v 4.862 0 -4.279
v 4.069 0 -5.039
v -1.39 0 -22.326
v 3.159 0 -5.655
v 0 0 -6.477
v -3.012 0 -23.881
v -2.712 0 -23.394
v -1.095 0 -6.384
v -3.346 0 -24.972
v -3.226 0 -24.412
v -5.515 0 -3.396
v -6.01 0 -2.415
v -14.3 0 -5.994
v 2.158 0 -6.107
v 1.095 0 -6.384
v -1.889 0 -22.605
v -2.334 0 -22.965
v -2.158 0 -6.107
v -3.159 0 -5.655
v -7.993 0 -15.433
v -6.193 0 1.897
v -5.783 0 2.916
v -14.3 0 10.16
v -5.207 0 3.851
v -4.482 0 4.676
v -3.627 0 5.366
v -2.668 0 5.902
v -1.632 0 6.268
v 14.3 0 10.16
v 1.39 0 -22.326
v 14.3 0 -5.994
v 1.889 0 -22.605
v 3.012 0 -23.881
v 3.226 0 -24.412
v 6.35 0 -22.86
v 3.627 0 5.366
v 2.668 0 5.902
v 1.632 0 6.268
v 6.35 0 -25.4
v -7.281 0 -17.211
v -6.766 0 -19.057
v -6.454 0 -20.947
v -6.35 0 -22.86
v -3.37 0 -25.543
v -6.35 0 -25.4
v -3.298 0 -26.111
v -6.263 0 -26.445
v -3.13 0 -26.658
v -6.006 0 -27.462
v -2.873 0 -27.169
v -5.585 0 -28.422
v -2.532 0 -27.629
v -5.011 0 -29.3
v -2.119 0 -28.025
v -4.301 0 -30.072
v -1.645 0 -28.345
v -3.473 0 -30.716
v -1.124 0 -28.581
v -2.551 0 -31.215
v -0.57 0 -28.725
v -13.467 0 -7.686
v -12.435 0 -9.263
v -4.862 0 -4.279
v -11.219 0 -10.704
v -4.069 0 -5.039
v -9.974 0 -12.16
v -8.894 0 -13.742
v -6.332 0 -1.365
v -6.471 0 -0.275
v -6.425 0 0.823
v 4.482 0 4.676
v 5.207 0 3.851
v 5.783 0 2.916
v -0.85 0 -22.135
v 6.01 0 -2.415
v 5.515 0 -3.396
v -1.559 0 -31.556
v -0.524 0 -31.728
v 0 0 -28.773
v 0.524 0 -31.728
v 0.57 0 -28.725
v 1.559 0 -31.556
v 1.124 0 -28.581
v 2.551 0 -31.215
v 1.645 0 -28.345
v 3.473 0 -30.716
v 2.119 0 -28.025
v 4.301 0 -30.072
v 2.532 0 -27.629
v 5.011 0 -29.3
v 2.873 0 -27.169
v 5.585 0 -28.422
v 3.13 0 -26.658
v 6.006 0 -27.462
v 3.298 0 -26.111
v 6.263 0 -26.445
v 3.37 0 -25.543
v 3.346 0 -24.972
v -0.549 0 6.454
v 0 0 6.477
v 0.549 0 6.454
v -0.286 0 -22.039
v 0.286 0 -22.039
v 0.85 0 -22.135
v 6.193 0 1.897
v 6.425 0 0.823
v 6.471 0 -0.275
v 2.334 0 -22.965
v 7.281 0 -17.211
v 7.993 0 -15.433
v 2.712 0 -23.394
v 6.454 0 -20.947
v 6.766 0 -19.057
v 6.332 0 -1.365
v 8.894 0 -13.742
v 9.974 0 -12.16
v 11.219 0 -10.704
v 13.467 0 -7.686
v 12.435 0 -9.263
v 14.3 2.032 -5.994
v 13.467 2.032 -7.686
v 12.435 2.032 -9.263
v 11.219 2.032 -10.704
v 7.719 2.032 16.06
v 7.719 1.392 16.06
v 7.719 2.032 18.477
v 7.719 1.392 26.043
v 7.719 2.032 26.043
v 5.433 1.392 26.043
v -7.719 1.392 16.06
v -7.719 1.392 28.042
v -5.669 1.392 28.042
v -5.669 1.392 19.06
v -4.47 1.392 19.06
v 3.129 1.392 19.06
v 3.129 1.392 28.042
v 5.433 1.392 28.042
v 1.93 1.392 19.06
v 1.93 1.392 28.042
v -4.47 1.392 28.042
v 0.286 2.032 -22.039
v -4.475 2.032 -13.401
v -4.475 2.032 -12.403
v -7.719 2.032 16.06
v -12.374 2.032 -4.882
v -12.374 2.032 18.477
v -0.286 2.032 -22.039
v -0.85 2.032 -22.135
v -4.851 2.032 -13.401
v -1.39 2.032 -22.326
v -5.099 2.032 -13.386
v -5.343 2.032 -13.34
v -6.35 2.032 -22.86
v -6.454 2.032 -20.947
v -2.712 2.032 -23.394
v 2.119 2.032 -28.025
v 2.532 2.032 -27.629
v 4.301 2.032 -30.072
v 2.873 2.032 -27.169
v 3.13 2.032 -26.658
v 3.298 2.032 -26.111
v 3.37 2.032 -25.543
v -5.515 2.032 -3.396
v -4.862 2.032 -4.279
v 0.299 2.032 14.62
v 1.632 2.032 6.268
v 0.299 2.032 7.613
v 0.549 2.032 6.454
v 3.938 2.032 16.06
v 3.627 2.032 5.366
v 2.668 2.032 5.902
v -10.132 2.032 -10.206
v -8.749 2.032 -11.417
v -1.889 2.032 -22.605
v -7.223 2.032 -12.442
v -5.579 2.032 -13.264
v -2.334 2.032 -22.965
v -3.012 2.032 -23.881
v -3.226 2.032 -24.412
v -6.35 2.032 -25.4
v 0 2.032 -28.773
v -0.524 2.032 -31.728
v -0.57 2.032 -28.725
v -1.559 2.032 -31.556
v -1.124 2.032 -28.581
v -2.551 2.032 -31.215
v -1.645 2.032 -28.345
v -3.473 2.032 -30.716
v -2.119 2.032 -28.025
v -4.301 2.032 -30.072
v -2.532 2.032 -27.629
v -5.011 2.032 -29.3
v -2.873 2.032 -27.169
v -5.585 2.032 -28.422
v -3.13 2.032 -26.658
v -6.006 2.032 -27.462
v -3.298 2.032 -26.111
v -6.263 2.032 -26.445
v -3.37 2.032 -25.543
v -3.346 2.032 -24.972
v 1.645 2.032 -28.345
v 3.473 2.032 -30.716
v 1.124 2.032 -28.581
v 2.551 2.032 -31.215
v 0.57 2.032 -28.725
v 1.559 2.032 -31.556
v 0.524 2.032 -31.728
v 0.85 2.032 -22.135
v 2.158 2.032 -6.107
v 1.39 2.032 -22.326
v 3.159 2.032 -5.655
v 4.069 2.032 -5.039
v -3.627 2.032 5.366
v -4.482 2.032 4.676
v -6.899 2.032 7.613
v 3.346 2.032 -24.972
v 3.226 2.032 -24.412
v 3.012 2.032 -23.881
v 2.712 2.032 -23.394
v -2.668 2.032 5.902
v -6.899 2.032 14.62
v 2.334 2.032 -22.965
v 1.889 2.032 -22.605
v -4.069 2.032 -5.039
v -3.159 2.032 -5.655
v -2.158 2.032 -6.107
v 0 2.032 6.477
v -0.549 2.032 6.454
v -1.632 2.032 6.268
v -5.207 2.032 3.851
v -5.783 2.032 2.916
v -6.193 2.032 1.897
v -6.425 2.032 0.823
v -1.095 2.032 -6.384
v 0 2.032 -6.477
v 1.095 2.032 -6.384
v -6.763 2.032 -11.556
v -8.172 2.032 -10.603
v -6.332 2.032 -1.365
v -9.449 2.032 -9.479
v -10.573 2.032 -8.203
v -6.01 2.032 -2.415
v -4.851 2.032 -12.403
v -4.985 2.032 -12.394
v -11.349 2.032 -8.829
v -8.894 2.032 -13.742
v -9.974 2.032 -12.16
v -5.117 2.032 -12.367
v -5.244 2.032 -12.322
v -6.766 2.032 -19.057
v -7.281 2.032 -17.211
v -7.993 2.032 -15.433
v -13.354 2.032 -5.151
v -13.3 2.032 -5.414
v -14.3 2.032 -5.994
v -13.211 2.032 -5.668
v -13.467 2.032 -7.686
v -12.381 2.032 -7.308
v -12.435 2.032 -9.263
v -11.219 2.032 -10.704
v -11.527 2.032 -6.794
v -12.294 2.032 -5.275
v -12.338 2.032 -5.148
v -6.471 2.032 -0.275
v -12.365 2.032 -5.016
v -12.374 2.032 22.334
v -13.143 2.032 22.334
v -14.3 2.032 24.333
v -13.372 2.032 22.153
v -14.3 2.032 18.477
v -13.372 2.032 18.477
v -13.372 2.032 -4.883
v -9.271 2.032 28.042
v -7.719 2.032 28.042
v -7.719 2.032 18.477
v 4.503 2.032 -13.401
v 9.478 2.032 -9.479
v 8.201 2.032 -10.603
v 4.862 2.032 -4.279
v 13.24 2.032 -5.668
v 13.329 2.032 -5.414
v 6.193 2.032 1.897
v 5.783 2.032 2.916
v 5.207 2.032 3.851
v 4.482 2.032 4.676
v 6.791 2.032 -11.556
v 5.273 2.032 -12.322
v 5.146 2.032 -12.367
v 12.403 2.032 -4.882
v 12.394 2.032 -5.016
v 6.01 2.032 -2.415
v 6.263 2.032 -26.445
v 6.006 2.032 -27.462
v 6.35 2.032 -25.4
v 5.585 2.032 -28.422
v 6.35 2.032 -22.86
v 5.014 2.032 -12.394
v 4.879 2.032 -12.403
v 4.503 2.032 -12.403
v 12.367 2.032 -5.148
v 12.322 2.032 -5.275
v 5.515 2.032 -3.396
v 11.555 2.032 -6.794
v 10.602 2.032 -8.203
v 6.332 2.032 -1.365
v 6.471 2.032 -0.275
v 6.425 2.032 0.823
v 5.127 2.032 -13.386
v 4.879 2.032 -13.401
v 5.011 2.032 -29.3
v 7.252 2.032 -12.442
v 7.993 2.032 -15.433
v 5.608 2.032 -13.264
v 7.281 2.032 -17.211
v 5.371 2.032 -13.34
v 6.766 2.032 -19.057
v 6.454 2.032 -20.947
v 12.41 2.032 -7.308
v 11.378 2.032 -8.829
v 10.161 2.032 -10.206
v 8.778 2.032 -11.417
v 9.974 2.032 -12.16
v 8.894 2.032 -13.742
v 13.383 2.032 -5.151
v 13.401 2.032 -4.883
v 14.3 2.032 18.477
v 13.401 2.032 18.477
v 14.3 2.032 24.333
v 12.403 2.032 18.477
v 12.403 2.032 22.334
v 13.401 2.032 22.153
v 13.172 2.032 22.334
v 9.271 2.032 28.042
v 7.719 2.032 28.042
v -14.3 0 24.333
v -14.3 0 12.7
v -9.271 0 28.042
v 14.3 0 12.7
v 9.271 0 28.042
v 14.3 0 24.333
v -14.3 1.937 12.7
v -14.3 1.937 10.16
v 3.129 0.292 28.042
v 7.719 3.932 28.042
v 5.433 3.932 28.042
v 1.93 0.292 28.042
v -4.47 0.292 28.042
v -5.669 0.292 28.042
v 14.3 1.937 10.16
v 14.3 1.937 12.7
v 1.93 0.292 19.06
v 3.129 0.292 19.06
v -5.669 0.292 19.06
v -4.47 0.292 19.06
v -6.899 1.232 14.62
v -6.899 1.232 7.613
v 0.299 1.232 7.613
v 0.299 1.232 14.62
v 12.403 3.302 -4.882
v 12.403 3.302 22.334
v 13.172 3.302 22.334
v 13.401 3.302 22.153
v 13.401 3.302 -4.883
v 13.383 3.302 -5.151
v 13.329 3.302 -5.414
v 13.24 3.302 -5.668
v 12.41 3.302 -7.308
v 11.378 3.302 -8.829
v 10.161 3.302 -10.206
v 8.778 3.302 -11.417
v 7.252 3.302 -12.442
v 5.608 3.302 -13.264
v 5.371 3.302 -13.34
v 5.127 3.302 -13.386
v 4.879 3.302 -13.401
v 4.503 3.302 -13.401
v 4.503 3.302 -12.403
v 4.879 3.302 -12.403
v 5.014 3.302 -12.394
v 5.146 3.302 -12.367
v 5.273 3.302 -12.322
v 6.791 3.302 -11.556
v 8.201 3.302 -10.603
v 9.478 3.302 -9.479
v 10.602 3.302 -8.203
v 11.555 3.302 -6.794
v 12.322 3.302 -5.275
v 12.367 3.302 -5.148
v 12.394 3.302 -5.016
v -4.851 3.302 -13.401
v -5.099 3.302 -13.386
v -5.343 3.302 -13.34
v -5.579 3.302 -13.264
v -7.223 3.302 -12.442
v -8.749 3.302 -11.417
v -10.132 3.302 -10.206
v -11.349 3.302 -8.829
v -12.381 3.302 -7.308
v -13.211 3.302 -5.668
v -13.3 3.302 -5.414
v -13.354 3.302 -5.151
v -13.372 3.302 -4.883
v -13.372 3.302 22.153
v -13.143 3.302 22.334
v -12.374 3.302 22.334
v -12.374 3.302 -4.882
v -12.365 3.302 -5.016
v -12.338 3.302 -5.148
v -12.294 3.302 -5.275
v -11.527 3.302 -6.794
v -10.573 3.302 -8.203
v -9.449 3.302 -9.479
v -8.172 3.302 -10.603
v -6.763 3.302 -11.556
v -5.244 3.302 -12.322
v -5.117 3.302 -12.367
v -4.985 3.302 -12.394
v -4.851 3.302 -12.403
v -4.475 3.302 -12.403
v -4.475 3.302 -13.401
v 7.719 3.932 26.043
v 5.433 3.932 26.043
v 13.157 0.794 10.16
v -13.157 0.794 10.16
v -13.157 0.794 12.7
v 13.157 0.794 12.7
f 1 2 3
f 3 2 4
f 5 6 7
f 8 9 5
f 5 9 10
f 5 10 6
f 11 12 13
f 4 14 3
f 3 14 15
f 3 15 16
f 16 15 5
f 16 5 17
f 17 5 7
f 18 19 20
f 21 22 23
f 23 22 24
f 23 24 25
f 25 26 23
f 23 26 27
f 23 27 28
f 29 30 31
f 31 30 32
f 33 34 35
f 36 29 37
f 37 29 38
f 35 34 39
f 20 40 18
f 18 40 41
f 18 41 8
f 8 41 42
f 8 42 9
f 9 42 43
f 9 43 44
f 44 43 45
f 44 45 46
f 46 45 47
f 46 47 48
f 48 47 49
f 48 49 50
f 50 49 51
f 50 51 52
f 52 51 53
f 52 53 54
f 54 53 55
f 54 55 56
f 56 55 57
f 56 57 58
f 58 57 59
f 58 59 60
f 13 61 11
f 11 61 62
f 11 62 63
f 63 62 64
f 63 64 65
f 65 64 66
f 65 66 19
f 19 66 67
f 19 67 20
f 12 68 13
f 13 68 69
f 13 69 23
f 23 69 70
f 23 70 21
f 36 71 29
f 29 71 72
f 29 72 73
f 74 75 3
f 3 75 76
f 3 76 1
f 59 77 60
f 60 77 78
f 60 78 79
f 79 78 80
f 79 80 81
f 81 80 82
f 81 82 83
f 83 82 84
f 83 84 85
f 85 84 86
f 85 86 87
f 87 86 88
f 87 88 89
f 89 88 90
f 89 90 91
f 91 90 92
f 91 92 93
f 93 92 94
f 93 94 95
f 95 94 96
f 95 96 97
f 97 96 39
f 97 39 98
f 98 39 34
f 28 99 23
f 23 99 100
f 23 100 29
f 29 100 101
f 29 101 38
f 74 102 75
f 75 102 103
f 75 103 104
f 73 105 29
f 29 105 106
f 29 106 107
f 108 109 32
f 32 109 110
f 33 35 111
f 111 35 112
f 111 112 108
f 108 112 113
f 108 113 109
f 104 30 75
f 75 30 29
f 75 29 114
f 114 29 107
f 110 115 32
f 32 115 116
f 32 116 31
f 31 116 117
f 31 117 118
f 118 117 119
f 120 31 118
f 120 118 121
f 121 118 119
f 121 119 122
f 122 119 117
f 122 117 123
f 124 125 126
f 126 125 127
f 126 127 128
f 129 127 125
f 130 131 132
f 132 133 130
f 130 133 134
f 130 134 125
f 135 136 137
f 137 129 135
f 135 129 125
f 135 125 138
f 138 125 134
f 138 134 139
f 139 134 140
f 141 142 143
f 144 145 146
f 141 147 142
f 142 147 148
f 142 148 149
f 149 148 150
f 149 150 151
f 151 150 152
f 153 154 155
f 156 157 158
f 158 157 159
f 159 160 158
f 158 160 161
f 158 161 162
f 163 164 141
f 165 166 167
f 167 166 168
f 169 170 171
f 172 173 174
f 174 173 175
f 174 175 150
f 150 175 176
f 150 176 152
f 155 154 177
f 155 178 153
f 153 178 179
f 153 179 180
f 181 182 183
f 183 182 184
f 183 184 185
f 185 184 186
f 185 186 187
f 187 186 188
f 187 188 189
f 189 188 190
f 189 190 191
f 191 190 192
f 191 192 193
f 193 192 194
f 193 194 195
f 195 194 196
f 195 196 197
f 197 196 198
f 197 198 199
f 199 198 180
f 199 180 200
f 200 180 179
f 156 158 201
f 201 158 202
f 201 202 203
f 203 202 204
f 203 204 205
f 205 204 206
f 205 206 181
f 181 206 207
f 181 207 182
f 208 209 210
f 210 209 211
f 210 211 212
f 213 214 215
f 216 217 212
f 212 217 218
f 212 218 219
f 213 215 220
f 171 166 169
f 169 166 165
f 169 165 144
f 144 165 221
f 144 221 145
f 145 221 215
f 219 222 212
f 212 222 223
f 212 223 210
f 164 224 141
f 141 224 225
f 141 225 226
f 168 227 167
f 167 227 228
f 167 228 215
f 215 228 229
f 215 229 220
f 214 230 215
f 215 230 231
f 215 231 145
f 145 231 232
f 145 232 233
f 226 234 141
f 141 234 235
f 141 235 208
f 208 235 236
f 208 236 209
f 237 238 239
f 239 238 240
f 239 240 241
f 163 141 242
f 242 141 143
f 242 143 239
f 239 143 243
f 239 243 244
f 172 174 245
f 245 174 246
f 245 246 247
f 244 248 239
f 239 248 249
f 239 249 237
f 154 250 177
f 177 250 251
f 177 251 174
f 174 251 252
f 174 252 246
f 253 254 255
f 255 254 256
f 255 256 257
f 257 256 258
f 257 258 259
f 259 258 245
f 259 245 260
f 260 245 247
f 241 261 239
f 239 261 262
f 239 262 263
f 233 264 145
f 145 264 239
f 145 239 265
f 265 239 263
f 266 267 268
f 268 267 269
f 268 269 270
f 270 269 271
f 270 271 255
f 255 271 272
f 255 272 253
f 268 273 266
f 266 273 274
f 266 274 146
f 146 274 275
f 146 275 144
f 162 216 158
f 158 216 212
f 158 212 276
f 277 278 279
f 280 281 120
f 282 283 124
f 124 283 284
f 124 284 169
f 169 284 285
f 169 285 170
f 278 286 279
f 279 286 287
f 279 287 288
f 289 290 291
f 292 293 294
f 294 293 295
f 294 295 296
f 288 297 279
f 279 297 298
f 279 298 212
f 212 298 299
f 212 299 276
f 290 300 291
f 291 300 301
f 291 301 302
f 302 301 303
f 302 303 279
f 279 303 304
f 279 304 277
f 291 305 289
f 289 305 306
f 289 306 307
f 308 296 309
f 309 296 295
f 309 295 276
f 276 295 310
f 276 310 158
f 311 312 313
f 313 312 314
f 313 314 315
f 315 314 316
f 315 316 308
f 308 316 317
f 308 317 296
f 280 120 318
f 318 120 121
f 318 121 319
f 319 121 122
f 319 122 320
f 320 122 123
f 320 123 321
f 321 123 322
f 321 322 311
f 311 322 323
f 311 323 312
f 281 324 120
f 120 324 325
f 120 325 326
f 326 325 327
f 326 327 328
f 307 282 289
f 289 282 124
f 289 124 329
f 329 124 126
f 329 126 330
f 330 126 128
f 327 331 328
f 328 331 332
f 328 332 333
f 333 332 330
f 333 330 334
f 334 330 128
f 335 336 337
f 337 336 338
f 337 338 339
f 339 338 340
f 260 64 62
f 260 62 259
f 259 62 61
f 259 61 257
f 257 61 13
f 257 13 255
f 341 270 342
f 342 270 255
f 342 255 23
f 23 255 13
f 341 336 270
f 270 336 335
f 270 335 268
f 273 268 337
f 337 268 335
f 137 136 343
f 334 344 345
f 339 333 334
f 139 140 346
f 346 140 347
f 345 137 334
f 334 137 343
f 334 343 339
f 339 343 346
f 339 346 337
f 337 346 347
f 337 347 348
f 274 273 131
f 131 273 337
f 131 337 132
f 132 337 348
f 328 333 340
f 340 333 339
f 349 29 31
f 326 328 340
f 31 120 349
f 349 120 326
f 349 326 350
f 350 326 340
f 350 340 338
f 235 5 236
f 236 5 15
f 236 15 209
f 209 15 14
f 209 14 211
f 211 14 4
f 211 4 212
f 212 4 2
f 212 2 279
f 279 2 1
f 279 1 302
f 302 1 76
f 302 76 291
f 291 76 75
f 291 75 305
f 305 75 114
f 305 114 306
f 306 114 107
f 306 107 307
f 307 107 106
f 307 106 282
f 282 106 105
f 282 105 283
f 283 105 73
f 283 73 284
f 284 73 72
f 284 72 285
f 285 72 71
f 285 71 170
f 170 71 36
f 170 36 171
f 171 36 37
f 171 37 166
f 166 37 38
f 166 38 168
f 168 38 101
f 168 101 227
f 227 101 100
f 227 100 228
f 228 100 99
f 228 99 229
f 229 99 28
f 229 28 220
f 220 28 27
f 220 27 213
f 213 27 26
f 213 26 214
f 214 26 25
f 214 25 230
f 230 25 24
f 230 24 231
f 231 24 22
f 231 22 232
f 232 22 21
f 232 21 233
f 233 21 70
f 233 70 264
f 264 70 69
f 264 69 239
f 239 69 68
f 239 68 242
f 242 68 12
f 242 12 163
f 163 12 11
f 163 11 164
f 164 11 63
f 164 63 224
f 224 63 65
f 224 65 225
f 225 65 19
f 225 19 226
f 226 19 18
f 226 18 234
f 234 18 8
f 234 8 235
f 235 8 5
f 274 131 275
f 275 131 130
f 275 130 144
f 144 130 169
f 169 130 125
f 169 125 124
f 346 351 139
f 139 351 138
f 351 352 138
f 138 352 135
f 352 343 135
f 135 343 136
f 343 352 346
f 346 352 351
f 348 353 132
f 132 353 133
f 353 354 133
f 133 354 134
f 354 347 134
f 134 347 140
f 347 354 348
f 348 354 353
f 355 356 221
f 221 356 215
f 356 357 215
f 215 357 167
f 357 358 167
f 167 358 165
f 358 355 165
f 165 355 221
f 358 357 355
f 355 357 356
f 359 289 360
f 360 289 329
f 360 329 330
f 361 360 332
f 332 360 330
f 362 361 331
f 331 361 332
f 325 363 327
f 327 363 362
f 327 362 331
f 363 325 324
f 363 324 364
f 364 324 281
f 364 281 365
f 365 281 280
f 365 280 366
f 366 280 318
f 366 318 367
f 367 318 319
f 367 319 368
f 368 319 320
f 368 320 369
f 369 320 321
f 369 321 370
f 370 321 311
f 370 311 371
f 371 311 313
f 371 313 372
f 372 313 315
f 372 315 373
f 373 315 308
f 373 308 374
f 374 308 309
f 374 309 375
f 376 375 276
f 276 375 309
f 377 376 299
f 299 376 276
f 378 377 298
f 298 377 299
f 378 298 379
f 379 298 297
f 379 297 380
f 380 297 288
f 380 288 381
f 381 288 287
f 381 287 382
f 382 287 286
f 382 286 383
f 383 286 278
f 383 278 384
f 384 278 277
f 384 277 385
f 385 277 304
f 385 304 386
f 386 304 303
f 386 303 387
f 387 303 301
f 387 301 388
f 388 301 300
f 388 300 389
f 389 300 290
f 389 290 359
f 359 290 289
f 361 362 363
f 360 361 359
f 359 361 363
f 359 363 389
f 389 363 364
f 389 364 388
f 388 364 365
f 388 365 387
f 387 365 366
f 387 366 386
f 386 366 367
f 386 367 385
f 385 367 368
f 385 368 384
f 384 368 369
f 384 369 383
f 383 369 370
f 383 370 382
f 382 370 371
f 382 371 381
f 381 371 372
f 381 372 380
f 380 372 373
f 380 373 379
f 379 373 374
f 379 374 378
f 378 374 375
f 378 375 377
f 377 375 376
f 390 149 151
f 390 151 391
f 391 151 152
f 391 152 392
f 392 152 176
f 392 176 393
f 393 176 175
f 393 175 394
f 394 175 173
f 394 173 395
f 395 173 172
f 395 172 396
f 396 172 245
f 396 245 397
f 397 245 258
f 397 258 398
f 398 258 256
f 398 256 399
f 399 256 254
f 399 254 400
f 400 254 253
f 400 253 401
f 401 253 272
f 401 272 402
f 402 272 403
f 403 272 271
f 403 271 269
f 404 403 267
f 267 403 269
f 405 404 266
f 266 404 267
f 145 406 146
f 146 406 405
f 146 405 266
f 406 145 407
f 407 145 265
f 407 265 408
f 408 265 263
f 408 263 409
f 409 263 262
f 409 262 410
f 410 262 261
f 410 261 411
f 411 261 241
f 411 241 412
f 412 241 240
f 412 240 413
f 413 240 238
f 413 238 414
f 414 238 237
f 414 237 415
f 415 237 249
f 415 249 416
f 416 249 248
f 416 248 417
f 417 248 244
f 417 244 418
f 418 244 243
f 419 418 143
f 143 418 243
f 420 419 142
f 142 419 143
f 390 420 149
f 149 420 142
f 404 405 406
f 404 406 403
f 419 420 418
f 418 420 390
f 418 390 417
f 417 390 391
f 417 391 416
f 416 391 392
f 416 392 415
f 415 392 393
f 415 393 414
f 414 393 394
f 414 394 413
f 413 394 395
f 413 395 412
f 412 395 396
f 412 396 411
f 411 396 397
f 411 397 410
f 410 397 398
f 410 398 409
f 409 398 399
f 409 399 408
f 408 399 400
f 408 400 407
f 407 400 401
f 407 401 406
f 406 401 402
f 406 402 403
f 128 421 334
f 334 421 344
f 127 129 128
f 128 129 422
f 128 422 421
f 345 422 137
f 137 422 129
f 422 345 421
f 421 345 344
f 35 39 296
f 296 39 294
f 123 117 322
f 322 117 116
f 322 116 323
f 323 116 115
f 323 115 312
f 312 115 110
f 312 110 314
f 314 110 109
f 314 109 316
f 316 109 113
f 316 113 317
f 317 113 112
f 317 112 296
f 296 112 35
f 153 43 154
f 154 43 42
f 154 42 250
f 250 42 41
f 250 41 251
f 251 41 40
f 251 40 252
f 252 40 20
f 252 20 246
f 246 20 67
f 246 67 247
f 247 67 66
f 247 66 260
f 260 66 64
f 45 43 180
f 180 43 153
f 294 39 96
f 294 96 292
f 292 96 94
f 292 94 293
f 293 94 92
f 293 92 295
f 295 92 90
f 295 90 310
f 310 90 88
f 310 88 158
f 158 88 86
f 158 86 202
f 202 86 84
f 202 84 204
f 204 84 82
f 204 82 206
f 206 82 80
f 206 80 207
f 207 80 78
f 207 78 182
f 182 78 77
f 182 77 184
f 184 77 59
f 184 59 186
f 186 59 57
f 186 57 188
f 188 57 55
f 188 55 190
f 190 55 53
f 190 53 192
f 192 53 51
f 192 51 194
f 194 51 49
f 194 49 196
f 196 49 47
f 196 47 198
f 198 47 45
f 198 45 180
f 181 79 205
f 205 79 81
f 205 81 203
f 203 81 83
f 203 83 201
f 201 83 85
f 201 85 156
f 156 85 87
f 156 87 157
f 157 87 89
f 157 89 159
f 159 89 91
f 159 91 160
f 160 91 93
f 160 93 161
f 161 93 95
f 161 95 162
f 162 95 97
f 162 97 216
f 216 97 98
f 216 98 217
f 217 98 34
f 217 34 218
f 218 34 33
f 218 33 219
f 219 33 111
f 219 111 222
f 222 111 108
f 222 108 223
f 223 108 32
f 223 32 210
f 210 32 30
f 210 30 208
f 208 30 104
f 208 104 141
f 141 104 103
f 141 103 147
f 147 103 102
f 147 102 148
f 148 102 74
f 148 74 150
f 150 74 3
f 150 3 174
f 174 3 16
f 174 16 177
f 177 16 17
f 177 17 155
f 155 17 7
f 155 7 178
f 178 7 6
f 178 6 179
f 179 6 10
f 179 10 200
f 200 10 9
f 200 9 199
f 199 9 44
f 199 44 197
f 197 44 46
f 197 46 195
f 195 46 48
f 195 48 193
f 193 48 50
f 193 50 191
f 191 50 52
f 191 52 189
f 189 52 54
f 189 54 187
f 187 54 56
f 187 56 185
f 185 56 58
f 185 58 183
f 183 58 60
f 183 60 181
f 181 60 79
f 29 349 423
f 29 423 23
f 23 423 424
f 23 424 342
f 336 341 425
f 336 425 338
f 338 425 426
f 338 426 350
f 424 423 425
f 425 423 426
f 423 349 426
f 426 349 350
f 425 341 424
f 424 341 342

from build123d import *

# Parameters (mm, degrees)
SKETCH1_R               = 6.477
BOSS_EXTRUDE1_DEPTH     = 2.032
CUT_EXTRUDE1_DEPTH      = 0.64008
SKETCH3_W               = 1.19888
SKETCH3_H               = 8.98144
CUT_EXTRUDE2_DEPTH      = 1.09982
SKETCH4_W               = 7.19836
SKETCH4_H               = 7.00786
CUT_EXTRUDE3_DEPTH      = 0.8001
BOSS_EXTRUDE2_DEPTH     = 1.27
SKETCH6_W               = 2.286
SKETCH6_H               = 1.99898
BOSS_EXTRUDE3_DEPTH     = 2.54
SKETCH7_R               = 3.3734375
BOSS_EXTRUDE4_DEPTH     = 2.032
SKETCH8_W               = 2.54
SKETCH8_H               = 0.79375
CUT_EXTRUDE4_DEPTH      = 1
CUT_EXTRUDE4_DEPTH_BACK = 29.6004
CHAMFER1_SIZE           = 1.143
CHAMFER2_SIZE           = 1.143


with BuildPart() as part:
    # Sketch1 → Boss-Extrude1 (new body)
    with BuildSketch(Plane(origin=(0, 0, 0), x_dir=(1, 0, 0), z_dir=(0, 1, 0))):
        with BuildLine():
            Line((-14.3002, 5.9944), (-14.3002, -24.3332))
            Line((-14.3002, -24.3332), (-9.271, -28.0416))
            Line((-9.271, -28.0416), (9.271, -28.0416))
            Line((9.271, -28.0416), (14.3002, -24.3332))
            Line((14.3002, -24.3332), (14.3002, 5.9944))
            ThreePointArc((14.3002, 5.9944), (0, 15.505758653), (-14.3002, 5.9944))
        make_face()
        Circle(SKETCH1_R, mode=Mode.SUBTRACT)
    extrude(amount=BOSS_EXTRUDE1_DEPTH)

    # Sketch2 → Cut-Extrude1 (cut)
    with BuildSketch(Plane(origin=(0, 2.032, 0), x_dir=(1, 0, 0), z_dir=(0, 1, 0))):
        Polygon((0, -28.0416), (-7.71906, -28.0416), (-7.71906, -16.06042), (7.71906, -16.06042), (7.71906, -28.0416), align=None)
    extrude(amount=-CUT_EXTRUDE1_DEPTH, mode=Mode.SUBTRACT)

    # Sketch3 → Cut-Extrude2 (cut)
    with BuildSketch(Plane(origin=(0, 1.39192, 0), x_dir=(1, 0, 0), z_dir=(0, 1, 0))):
        with Locations((-5.06984, -23.55088)):
            Rectangle(SKETCH3_W, SKETCH3_H)
        with Locations((2.52984, -23.55088)):
            Rectangle(SKETCH3_W, SKETCH3_H)
    extrude(amount=-CUT_EXTRUDE2_DEPTH, mode=Mode.SUBTRACT)

    # Sketch4 → Cut-Extrude3 (cut)
    with BuildSketch(Plane(origin=(0, 2.032, 0), x_dir=(1, 0, 0), z_dir=(0, 1, 0))):
        with Locations((-3.299968, -11.116564)):
            Rectangle(SKETCH4_W, SKETCH4_H)
    extrude(amount=-CUT_EXTRUDE3_DEPTH, mode=Mode.SUBTRACT)

    # Sketch5 → Boss-Extrude2 (add)
    with BuildSketch(Plane(origin=(0, 2.032, 0), x_dir=(1, 0, 0), z_dir=(0, 1, 0))):
        with BuildLine():
            Line((12.40282, -22.33422), (13.171678, -22.33422))
            Line((13.171678, -22.33422), (13.40104, -22.152864))
            Line((13.40104, -22.152864), (13.40104, 4.882896))
            ThreePointArc((13.40104, 4.882896), (13.360125716, 5.283490726), (13.23975, 5.667756))
            ThreePointArc((13.23975, 5.667756), (10.160746855, 10.20631074), (5.608066, 13.264388))
            ThreePointArc((5.608066, 13.264388), (5.250053957, 13.366581837), (4.87934, 13.40104))
            Line((4.87934, 13.40104), (4.50342, 13.40104))
            Line((4.50342, 13.40104), (4.50342, 12.40282))
            Line((4.50342, 12.40282), (4.87934, 12.40282))
            ThreePointArc((4.87934, 12.40282), (5.080028543, 12.382451063), (5.272532, 12.322175))
            ThreePointArc((5.272532, 12.322175), (9.477779109, 9.479294357), (12.322175, 5.275072))
            ThreePointArc((12.322175, 5.275072), (12.382451063, 5.082568543), (12.40282, 4.88188))
            Line((12.40282, 4.88188), (12.40282, -22.33422))
        make_face()
        with BuildLine():
            Line((-4.850750436, 13.40104), (-4.474830436, 13.40104))
            Line((-4.474830436, 13.40104), (-4.474830436, 12.40282))
            Line((-4.474830436, 12.40282), (-4.850750436, 12.40282))
            ThreePointArc((-4.850750436, 12.40282), (-5.051438979, 12.382451063), (-5.243942436, 12.322175))
            ThreePointArc((-5.243942436, 12.322175), (-9.449189546, 9.479294357), (-12.293585436, 5.275072))
            ThreePointArc((-12.293585436, 5.275072), (-12.353861499, 5.082568543), (-12.374230436, 4.88188))
            Line((-12.374230436, 4.88188), (-12.374230436, -22.33422))
            Line((-12.374230436, -22.33422), (-13.143088436, -22.33422))
            Line((-13.143088436, -22.33422), (-13.372450436, -22.152864))
            Line((-13.372450436, -22.152864), (-13.372450436, 4.882896))
            ThreePointArc((-13.372450436, 4.882896), (-13.331536152, 5.283490726), (-13.211160436, 5.667756))
            ThreePointArc((-13.211160436, 5.667756), (-10.132157291, 10.20631074), (-5.579476436, 13.264388))
            ThreePointArc((-5.579476436, 13.264388), (-5.221464393, 13.366581837), (-4.850750436, 13.40104))
        make_face()
    extrude(amount=BOSS_EXTRUDE2_DEPTH)

    # Sketch6 → Boss-Extrude3 (add)
    with BuildSketch(Plane(origin=(0, 1.39192, 0), x_dir=(1, 0, 0), z_dir=(0, 1, 0))):
        with Locations((6.57606, -27.04211)):
            Rectangle(SKETCH6_W, SKETCH6_H)
    extrude(amount=BOSS_EXTRUDE3_DEPTH)

    # Sketch7 → Boss-Extrude4 (add)
    with BuildSketch(Plane.XZ):
        with BuildLine():
            Line((-6.35, -25.4), (-6.35, -22.86))
            ThreePointArc((-6.35, -22.86), (-7.612456929, -16.312404928), (-11.218821547, -10.703578583))
            ThreePointArc((-11.218821547, -10.703578583), (0, -15.505758653), (11.218821547, -10.703578583))
            ThreePointArc((11.218821547, -10.703578583), (7.612456929, -16.312404928), (6.35, -22.86))
            Line((6.35, -22.86), (6.35, -25.4))
            ThreePointArc((6.35, -25.4), (0, -31.75), (-6.35, -25.4))
        make_face()
        with Locations((0, -25.4)):
            Circle(SKETCH7_R, mode=Mode.SUBTRACT)
    extrude(amount=-BOSS_EXTRUDE4_DEPTH)

    # Sketch8 → Cut-Extrude4 (cut, two sides)
    with BuildSketch(Plane(origin=(14.3002, 0, 0), x_dir=(0, 0, -1), z_dir=(1, 0, 0))) as cut_extrude4_sk:
        with Locations((-11.43, 0.396875)):
            Rectangle(SKETCH8_W, SKETCH8_H)
    extrude(amount=CUT_EXTRUDE4_DEPTH, mode=Mode.SUBTRACT)
    extrude(cut_extrude4_sk.sketch, amount=-CUT_EXTRUDE4_DEPTH_BACK, mode=Mode.SUBTRACT)

    # Chamfer1
    chamfer1_edges = [part.edges().sort_by_distance(p)[0] for p in [
        (14.3002, 0.79375, 11.43),
    ]]
    chamfer(chamfer1_edges, length=CHAMFER1_SIZE)

    # Chamfer2
    chamfer2_edges = [part.edges().sort_by_distance(p)[0] for p in [
        (-14.3002, 0.79375, 11.43),
    ]]
    chamfer(chamfer2_edges, length=CHAMFER2_SIZE)


solid = part.part
